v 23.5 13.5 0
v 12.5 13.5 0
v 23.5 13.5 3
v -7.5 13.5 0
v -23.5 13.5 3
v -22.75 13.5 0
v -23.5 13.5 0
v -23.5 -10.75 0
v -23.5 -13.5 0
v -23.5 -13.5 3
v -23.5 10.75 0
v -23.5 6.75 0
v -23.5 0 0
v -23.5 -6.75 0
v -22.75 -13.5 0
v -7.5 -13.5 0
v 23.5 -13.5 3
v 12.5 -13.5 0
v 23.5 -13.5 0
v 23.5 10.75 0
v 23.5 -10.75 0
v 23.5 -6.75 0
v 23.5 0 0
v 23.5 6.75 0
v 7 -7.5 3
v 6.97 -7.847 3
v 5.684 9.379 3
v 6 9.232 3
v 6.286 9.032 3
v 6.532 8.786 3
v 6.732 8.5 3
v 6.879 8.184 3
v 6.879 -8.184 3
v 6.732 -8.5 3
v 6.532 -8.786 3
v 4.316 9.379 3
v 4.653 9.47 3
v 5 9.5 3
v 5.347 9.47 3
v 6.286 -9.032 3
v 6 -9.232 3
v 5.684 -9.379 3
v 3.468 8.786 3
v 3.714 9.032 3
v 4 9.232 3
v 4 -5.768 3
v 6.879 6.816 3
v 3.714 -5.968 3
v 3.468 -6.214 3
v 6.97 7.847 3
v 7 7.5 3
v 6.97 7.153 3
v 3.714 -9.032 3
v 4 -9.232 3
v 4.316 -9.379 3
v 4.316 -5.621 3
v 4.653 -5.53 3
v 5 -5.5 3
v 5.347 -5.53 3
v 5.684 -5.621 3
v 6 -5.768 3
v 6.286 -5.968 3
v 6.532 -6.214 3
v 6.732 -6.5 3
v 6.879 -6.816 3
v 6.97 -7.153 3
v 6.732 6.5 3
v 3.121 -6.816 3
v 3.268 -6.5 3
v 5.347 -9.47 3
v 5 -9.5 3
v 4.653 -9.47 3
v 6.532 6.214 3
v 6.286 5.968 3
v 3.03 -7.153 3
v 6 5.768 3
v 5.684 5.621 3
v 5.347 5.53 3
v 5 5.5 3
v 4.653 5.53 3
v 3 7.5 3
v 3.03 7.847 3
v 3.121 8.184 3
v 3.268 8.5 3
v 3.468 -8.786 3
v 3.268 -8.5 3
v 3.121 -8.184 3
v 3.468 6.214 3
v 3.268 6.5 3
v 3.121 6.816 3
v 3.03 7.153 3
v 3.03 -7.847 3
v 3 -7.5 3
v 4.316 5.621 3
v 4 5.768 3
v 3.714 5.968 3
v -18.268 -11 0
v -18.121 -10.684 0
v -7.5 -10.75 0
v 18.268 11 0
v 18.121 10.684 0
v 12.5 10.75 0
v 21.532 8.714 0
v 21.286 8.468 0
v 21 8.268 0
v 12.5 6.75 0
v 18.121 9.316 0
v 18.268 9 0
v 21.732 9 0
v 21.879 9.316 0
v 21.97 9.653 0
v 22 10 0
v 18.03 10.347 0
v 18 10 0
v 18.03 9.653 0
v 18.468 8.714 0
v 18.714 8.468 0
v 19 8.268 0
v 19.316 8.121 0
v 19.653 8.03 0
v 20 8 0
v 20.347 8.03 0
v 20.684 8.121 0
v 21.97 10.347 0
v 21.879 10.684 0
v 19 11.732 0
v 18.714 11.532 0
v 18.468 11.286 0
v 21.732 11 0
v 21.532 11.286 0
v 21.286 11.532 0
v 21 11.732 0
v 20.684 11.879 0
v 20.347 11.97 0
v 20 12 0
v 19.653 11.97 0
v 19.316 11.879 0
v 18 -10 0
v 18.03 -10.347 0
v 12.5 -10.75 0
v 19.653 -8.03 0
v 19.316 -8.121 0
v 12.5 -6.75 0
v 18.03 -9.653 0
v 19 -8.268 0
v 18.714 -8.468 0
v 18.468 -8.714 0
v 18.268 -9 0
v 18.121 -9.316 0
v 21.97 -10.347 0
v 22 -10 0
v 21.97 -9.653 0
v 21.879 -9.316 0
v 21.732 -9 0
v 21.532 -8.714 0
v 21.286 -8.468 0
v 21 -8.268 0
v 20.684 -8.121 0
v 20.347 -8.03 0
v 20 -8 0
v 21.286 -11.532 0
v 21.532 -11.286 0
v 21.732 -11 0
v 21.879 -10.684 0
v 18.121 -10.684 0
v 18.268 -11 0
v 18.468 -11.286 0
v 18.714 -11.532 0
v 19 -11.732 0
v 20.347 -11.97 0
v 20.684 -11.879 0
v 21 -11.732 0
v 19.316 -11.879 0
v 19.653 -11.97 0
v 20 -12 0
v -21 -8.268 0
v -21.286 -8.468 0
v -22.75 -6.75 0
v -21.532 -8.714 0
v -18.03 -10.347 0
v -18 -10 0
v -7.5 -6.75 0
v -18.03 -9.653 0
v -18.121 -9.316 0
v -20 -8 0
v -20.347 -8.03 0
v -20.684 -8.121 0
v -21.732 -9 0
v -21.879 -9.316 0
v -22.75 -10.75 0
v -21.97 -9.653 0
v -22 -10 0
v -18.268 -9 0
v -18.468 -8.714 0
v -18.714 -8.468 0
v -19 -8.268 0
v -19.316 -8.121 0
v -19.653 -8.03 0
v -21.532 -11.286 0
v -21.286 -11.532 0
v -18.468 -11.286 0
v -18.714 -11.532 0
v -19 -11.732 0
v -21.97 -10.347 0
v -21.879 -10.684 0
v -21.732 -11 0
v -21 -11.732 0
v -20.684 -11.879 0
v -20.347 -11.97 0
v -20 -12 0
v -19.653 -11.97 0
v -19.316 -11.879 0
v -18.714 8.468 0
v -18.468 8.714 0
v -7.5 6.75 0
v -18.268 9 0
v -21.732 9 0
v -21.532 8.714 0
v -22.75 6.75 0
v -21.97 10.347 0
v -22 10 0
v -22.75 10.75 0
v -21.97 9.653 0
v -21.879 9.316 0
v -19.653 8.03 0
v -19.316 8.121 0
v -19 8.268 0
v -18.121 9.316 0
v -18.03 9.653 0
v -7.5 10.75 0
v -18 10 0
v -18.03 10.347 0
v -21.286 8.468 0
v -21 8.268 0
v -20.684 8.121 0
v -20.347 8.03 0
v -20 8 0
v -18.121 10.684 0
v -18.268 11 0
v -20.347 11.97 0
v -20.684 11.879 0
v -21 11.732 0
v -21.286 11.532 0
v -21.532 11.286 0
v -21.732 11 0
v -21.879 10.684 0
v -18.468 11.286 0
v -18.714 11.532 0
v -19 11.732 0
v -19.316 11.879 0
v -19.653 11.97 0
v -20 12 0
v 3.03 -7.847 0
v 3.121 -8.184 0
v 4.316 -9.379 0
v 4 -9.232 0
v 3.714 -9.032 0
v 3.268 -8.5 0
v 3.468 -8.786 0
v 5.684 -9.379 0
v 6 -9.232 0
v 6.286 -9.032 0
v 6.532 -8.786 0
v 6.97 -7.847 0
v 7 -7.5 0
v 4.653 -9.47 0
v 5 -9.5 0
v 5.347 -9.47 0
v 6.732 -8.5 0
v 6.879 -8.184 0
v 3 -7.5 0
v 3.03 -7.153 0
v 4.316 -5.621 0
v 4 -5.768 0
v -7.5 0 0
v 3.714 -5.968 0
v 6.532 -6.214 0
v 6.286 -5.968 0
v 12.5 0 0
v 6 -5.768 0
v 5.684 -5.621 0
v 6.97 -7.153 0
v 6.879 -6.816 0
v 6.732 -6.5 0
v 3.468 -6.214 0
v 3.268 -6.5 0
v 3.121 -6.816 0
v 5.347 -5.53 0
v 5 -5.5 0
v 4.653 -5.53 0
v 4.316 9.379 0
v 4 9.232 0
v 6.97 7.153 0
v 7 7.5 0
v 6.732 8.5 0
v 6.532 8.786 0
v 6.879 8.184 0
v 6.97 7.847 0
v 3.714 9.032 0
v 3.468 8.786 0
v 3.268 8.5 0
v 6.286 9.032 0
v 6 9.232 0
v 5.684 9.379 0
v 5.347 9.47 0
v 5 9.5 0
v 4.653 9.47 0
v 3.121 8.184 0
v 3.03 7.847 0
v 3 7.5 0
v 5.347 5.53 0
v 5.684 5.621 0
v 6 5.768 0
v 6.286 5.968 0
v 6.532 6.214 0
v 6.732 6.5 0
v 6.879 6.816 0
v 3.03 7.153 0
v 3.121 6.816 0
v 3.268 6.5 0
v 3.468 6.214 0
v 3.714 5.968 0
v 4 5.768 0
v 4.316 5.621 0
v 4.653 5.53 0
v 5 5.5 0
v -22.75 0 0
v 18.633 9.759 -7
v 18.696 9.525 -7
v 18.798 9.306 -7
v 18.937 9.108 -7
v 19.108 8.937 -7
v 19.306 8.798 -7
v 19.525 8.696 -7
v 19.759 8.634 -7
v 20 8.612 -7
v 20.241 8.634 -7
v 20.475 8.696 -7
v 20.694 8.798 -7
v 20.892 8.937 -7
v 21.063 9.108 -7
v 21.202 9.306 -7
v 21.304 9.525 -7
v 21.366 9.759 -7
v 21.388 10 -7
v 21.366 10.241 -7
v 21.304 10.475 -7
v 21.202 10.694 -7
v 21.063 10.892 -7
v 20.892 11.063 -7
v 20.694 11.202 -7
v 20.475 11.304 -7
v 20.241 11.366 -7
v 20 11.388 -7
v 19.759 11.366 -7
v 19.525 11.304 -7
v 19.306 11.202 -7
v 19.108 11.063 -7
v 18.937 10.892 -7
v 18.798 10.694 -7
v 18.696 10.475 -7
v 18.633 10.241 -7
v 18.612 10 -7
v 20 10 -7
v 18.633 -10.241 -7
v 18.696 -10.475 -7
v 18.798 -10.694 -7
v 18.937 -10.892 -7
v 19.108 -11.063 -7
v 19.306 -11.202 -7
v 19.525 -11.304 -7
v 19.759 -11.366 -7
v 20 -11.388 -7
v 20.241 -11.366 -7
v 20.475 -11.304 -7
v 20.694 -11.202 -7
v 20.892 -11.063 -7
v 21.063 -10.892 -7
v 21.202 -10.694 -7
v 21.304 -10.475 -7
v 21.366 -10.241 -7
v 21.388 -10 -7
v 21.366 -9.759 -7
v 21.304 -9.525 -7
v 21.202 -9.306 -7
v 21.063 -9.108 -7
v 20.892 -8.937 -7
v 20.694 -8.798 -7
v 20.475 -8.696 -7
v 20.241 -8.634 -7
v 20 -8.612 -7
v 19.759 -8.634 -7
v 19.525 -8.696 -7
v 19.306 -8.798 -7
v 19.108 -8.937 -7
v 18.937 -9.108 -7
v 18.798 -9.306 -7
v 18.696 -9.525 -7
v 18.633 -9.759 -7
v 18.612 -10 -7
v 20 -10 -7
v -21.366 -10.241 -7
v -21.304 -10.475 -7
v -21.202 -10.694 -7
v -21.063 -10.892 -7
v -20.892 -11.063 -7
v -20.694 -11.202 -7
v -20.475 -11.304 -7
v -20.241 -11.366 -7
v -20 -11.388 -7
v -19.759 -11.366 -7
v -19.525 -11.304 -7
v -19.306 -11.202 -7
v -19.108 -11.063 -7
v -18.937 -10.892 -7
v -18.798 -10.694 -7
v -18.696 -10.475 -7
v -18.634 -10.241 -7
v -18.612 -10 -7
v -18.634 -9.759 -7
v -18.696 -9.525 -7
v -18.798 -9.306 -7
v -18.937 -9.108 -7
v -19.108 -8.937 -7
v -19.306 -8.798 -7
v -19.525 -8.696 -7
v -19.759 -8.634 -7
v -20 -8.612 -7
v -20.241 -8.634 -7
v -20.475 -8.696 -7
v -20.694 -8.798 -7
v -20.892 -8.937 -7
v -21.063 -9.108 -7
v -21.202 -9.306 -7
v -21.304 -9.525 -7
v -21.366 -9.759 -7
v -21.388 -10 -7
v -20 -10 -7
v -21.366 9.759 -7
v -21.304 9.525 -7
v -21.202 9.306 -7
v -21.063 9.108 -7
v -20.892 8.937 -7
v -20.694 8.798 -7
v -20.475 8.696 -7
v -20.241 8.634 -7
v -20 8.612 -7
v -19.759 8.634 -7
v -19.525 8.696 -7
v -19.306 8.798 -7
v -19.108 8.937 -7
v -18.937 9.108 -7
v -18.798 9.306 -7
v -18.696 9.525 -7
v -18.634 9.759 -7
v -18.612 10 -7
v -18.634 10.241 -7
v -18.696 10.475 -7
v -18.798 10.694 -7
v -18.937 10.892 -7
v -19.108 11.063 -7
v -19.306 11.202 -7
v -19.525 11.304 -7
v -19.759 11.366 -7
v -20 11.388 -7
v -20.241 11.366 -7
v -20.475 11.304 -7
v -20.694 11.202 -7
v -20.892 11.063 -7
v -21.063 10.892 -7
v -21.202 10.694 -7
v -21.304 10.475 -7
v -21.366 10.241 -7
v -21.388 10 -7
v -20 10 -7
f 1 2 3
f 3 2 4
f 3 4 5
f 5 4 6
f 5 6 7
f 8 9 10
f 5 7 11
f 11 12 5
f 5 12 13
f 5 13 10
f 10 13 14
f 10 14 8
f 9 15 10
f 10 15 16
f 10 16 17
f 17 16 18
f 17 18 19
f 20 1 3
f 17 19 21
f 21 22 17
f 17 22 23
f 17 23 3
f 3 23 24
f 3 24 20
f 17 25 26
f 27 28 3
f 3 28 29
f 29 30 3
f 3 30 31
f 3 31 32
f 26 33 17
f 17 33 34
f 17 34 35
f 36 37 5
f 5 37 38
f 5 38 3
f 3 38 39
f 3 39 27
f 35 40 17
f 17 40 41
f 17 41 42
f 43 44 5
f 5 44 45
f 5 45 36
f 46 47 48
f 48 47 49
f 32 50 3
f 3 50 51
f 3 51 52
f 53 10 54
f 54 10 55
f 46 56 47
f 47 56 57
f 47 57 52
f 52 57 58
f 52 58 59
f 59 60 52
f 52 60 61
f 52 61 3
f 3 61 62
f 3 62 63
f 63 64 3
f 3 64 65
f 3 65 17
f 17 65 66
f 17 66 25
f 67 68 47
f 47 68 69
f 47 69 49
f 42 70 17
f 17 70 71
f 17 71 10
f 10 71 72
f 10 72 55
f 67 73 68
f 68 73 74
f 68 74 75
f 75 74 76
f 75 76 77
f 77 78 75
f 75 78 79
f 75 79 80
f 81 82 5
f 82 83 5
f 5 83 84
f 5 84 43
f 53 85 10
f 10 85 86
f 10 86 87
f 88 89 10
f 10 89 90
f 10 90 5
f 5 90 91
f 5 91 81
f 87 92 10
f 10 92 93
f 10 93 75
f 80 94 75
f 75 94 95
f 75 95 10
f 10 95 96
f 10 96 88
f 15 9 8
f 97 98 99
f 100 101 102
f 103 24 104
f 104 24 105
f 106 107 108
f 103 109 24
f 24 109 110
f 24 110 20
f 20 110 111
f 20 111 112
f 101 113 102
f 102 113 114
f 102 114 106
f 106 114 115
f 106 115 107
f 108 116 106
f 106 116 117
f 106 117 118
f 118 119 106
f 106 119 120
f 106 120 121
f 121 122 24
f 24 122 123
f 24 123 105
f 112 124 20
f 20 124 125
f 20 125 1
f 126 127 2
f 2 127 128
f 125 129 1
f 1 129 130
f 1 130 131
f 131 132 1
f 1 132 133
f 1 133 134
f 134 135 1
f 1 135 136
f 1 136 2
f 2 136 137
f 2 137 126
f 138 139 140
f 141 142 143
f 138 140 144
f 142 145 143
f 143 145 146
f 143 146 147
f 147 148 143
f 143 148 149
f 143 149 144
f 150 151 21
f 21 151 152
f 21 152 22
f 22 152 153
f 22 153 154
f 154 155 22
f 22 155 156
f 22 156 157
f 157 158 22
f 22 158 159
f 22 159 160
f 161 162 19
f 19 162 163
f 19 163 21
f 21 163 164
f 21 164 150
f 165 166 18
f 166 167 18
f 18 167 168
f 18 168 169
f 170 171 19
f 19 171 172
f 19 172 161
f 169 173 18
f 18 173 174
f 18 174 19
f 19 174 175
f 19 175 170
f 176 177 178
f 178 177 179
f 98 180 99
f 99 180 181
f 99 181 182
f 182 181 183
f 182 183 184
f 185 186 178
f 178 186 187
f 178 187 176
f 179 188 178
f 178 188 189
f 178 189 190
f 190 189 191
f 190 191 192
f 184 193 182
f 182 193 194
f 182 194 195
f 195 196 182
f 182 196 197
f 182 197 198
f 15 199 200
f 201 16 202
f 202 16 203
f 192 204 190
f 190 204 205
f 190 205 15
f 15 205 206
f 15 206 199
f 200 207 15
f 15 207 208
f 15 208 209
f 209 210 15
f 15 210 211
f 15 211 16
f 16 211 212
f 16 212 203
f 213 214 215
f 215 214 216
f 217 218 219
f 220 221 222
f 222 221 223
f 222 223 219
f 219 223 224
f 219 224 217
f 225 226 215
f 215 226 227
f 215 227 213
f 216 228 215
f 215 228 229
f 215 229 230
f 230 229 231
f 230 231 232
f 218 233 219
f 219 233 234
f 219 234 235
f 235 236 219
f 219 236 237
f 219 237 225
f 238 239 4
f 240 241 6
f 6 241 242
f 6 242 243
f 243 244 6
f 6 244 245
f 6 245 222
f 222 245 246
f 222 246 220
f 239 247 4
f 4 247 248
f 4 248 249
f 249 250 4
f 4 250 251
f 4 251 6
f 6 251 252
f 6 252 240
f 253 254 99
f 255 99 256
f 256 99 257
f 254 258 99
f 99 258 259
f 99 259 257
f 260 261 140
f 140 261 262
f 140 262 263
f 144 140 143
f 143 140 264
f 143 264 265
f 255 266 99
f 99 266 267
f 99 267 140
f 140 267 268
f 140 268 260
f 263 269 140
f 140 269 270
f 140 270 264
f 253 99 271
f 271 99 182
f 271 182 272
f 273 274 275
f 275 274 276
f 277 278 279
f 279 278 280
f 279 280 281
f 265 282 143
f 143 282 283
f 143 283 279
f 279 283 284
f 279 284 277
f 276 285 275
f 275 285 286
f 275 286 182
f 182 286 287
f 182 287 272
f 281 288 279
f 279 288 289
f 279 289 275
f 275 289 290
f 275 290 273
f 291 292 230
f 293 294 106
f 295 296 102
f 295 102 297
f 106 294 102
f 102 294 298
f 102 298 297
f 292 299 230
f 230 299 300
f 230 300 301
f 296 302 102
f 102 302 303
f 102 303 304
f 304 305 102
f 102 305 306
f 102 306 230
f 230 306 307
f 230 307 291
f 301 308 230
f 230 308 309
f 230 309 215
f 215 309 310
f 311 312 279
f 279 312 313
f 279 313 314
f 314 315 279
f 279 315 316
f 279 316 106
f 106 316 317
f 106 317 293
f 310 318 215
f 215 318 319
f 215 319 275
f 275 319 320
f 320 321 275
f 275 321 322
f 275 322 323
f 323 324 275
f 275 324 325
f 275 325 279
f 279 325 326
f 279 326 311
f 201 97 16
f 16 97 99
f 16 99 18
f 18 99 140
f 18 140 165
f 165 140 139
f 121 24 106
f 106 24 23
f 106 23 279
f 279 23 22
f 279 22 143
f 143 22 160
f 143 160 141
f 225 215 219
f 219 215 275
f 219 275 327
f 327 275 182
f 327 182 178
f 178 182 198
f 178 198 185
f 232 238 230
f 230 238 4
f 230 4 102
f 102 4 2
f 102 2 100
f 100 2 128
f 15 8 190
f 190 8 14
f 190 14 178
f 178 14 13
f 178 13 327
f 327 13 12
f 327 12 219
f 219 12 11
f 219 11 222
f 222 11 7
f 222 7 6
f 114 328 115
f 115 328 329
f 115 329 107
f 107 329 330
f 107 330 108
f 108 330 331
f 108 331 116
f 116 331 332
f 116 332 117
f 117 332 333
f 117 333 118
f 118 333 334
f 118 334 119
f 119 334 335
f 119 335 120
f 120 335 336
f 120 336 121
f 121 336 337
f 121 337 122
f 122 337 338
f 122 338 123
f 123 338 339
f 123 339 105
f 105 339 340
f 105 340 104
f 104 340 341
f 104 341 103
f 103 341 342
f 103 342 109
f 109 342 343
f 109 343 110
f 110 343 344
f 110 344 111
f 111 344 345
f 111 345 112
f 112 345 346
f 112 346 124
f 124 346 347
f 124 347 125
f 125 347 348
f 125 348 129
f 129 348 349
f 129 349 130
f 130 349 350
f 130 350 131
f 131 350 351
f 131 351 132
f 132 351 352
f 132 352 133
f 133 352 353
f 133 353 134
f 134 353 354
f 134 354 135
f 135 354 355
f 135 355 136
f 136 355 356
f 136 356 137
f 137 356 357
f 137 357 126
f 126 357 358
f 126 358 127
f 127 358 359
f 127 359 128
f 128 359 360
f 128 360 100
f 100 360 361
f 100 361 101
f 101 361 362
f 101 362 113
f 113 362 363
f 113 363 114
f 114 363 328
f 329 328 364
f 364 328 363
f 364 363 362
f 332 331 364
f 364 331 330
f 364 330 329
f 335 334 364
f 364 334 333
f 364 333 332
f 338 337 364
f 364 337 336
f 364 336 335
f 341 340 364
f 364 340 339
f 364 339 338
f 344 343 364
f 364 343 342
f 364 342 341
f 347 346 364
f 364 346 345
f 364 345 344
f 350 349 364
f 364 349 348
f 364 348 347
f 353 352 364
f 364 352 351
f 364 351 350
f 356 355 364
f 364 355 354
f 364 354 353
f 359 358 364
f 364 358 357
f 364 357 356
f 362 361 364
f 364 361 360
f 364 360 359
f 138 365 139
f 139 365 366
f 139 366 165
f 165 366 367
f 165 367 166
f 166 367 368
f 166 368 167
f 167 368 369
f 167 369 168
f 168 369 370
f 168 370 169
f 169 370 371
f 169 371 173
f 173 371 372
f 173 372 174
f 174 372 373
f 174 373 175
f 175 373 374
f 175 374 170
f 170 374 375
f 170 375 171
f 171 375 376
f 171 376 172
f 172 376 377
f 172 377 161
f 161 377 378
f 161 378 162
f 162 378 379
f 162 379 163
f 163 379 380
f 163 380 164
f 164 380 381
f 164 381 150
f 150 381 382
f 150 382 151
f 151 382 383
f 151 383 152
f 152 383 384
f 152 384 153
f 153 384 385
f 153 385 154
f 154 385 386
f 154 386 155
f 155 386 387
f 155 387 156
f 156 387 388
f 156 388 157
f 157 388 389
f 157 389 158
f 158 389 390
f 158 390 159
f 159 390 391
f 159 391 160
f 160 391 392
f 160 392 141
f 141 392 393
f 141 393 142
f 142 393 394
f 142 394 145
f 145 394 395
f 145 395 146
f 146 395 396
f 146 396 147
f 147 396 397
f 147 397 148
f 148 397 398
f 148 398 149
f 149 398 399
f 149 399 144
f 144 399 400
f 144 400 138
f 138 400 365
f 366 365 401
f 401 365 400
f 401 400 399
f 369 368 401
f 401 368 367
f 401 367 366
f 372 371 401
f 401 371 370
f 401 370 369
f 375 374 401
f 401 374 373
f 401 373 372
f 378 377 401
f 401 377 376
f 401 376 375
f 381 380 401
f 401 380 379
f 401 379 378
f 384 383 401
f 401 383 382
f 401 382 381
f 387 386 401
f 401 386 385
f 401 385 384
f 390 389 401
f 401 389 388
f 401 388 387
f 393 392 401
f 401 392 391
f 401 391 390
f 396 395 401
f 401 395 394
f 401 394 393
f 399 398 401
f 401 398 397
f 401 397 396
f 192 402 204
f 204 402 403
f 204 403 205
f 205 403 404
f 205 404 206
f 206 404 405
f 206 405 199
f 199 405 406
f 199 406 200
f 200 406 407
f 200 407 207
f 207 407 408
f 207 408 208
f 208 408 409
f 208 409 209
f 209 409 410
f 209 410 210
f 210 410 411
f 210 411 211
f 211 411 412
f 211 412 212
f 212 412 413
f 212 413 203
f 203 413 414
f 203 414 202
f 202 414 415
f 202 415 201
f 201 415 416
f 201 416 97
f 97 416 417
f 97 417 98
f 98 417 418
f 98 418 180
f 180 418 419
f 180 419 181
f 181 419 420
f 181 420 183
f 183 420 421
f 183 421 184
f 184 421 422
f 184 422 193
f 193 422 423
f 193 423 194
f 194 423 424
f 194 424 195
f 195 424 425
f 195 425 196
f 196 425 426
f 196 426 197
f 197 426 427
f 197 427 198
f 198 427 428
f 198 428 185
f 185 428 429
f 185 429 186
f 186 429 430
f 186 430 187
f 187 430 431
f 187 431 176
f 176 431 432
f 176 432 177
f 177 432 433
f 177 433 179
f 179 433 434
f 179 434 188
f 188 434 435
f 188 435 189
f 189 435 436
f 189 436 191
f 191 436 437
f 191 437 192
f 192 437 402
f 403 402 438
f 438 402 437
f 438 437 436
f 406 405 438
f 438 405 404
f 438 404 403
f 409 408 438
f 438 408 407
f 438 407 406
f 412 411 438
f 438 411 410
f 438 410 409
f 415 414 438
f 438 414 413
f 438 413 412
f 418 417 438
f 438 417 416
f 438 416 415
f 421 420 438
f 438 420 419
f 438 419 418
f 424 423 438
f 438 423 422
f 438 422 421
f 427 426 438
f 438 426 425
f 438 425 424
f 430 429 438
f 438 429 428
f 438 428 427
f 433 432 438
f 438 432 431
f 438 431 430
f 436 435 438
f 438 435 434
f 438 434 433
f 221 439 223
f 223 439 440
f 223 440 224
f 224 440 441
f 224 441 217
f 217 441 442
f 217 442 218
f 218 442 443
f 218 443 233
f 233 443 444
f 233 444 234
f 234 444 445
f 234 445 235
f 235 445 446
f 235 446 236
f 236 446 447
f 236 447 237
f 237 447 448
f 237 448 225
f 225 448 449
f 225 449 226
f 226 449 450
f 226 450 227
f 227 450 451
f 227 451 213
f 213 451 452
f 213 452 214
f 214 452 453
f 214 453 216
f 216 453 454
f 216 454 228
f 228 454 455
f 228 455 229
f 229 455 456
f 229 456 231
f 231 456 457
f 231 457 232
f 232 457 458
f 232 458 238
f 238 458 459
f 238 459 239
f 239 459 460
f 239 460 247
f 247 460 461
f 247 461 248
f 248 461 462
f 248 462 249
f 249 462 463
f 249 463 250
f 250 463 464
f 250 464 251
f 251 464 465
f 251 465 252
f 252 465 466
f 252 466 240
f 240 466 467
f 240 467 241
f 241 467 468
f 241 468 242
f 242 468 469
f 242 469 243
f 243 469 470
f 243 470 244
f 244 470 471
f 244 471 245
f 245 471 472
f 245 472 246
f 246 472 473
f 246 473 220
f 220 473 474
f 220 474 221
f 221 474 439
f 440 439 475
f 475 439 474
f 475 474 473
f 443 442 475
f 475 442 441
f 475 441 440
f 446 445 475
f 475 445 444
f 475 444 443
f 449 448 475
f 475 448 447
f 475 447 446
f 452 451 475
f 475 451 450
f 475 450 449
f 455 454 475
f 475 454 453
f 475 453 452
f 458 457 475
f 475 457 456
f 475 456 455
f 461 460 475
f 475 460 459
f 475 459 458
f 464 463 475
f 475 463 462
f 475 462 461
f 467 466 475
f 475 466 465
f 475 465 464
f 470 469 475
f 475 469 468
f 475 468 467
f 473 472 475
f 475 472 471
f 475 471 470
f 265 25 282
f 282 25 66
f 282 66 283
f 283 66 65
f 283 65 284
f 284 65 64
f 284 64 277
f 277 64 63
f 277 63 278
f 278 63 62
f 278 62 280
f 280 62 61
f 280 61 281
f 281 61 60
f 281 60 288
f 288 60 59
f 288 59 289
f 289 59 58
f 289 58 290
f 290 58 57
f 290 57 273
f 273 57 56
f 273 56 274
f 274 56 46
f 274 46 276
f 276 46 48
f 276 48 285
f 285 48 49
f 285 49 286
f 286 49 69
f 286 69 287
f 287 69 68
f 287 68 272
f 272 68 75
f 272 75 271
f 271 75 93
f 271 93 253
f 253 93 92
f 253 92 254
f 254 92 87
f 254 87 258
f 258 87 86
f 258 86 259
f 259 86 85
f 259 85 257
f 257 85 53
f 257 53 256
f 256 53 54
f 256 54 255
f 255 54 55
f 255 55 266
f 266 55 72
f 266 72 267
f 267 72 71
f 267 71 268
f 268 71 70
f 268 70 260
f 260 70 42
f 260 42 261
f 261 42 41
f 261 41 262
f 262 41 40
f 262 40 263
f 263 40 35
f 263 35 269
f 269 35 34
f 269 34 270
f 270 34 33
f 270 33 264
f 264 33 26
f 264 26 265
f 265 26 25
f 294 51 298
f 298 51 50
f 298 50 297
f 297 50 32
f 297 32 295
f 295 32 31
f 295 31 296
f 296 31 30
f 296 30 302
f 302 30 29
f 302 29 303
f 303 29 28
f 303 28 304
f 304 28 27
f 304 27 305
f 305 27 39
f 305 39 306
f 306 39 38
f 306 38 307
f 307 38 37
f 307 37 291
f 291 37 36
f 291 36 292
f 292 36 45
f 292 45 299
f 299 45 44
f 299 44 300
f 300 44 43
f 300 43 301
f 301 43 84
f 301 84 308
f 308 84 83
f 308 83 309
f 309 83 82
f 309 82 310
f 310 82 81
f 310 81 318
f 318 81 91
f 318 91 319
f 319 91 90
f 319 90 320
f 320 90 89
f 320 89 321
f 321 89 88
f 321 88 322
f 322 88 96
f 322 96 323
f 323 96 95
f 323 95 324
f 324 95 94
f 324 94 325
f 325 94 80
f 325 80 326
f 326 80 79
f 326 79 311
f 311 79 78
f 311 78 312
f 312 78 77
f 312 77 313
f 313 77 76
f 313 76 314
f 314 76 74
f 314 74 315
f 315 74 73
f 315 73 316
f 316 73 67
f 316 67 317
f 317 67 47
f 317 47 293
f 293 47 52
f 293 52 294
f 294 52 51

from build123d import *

# Parameters (mm, degrees)
SKETCH1_W                     = 47
SKETCH1_H                     = 27
BOSS_EXTRUDE1_DEPTH           = 3
SKETCH2_R                     = 2
BOSS_EXTRUDE2_DEPTH           = 7
BOSS_EXTRUDE2_DRAFT           = 5
BOSS_EXTRUDE2_PROFILE_2_DEPTH = 7
BOSS_EXTRUDE2_PROFILE_2_DRAFT = 5
BOSS_EXTRUDE2_PROFILE_3_DEPTH = 7
BOSS_EXTRUDE2_PROFILE_3_DRAFT = 5
BOSS_EXTRUDE2_PROFILE_4_DEPTH = 7
BOSS_EXTRUDE2_PROFILE_4_DRAFT = 5
SKETCH3_R                     = 2
CUT_EXTRUDE1_DEPTH            = 5


with BuildPart() as part:
    # Sketch1 → Boss-Extrude1 (new body)
    with BuildSketch(Plane.XY):
        Rectangle(SKETCH1_W, SKETCH1_H)
    extrude(amount=BOSS_EXTRUDE1_DEPTH)


with BuildPart() as boss_extrude2_tool:
    # Sketch2 → Boss-Extrude2 (with draft: the straight prism first)
    with BuildSketch(Plane(origin=(0, 0, 0), x_dir=(-1, 0, 0), z_dir=(0, 0, -1))):
        with Locations((-20, 10)):
            Circle(SKETCH2_R)
    extrude(amount=BOSS_EXTRUDE2_DEPTH)
    # Boss-Extrude2: the draft: its side faces are tilted about the plane it starts from
    boss_extrude2_sides = [boss_extrude2_tool.faces().sort_by_distance(p)[0] for p in [
        (22, 10, -3.5),
    ]]
    draft(boss_extrude2_sides, Plane(origin=(0, 0, 0), x_dir=(-1, 0, 0), z_dir=(0, 0, -1)), BOSS_EXTRUDE2_DRAFT)


with BuildPart() as part_1:
    add(part.part)

    # Boss-Extrude2: add boss_extrude2_tool
    add(boss_extrude2_tool.part)


with BuildPart() as boss_extrude2_profile_2_tool:
    # Sketch2 → Boss-Extrude2 profile 2 (with draft: the straight prism first)
    with BuildSketch(Plane(origin=(0, 0, 0), x_dir=(-1, 0, 0), z_dir=(0, 0, -1))):
        with Locations((20, 10)):
            Circle(SKETCH2_R)
    extrude(amount=BOSS_EXTRUDE2_PROFILE_2_DEPTH)
    # Boss-Extrude2 profile 2: the draft: its side faces are tilted about the plane it starts from
    boss_extrude2_profile_2_sides = [boss_extrude2_profile_2_tool.faces().sort_by_distance(p)[0] for p in [
        (-18, 10, -3.5),
    ]]
    draft(boss_extrude2_profile_2_sides, Plane(origin=(0, 0, 0), x_dir=(-1, 0, 0), z_dir=(0, 0, -1)), BOSS_EXTRUDE2_PROFILE_2_DRAFT)


with BuildPart() as part_2:
    add(part_1.part)

    # Boss-Extrude2 profile 2: add boss_extrude2_profile_2_tool
    add(boss_extrude2_profile_2_tool.part)


with BuildPart() as boss_extrude2_profile_3_tool:
    # Sketch2 → Boss-Extrude2 profile 3 (with draft: the straight prism first)
    with BuildSketch(Plane(origin=(0, 0, 0), x_dir=(-1, 0, 0), z_dir=(0, 0, -1))):
        with Locations((20, -10)):
            Circle(SKETCH2_R)
    extrude(amount=BOSS_EXTRUDE2_PROFILE_3_DEPTH)
    # Boss-Extrude2 profile 3: the draft: its side faces are tilted about the plane it starts from
    boss_extrude2_profile_3_sides = [boss_extrude2_profile_3_tool.faces().sort_by_distance(p)[0] for p in [
        (-18, -10, -3.5),
    ]]
    draft(boss_extrude2_profile_3_sides, Plane(origin=(0, 0, 0), x_dir=(-1, 0, 0), z_dir=(0, 0, -1)), BOSS_EXTRUDE2_PROFILE_3_DRAFT)


with BuildPart() as part_3:
    add(part_2.part)

    # Boss-Extrude2 profile 3: add boss_extrude2_profile_3_tool
    add(boss_extrude2_profile_3_tool.part)


with BuildPart() as boss_extrude2_profile_4_tool:
    # Sketch2 → Boss-Extrude2 profile 4 (with draft: the straight prism first)
    with BuildSketch(Plane(origin=(0, 0, 0), x_dir=(-1, 0, 0), z_dir=(0, 0, -1))):
        with Locations((-20, -10)):
            Circle(SKETCH2_R)
    extrude(amount=BOSS_EXTRUDE2_PROFILE_4_DEPTH)
    # Boss-Extrude2 profile 4: the draft: its side faces are tilted about the plane it starts from
    boss_extrude2_profile_4_sides = [boss_extrude2_profile_4_tool.faces().sort_by_distance(p)[0] for p in [
        (22, -10, -3.5),
    ]]
    draft(boss_extrude2_profile_4_sides, Plane(origin=(0, 0, 0), x_dir=(-1, 0, 0), z_dir=(0, 0, -1)), BOSS_EXTRUDE2_PROFILE_4_DRAFT)


with BuildPart() as part_4:
    add(part_3.part)

    # Boss-Extrude2 profile 4: add boss_extrude2_profile_4_tool
    add(boss_extrude2_profile_4_tool.part)

    # Sketch3 → Cut-Extrude1 (cut)
    with BuildSketch(Plane.XY.offset(3)):
        with Locations((5, 7.5)):
            Circle(SKETCH3_R)
        with Locations((5, -7.5)):
            Circle(SKETCH3_R)
    extrude(amount=-CUT_EXTRUDE1_DEPTH, mode=Mode.SUBTRACT)


solid = part_4.part
